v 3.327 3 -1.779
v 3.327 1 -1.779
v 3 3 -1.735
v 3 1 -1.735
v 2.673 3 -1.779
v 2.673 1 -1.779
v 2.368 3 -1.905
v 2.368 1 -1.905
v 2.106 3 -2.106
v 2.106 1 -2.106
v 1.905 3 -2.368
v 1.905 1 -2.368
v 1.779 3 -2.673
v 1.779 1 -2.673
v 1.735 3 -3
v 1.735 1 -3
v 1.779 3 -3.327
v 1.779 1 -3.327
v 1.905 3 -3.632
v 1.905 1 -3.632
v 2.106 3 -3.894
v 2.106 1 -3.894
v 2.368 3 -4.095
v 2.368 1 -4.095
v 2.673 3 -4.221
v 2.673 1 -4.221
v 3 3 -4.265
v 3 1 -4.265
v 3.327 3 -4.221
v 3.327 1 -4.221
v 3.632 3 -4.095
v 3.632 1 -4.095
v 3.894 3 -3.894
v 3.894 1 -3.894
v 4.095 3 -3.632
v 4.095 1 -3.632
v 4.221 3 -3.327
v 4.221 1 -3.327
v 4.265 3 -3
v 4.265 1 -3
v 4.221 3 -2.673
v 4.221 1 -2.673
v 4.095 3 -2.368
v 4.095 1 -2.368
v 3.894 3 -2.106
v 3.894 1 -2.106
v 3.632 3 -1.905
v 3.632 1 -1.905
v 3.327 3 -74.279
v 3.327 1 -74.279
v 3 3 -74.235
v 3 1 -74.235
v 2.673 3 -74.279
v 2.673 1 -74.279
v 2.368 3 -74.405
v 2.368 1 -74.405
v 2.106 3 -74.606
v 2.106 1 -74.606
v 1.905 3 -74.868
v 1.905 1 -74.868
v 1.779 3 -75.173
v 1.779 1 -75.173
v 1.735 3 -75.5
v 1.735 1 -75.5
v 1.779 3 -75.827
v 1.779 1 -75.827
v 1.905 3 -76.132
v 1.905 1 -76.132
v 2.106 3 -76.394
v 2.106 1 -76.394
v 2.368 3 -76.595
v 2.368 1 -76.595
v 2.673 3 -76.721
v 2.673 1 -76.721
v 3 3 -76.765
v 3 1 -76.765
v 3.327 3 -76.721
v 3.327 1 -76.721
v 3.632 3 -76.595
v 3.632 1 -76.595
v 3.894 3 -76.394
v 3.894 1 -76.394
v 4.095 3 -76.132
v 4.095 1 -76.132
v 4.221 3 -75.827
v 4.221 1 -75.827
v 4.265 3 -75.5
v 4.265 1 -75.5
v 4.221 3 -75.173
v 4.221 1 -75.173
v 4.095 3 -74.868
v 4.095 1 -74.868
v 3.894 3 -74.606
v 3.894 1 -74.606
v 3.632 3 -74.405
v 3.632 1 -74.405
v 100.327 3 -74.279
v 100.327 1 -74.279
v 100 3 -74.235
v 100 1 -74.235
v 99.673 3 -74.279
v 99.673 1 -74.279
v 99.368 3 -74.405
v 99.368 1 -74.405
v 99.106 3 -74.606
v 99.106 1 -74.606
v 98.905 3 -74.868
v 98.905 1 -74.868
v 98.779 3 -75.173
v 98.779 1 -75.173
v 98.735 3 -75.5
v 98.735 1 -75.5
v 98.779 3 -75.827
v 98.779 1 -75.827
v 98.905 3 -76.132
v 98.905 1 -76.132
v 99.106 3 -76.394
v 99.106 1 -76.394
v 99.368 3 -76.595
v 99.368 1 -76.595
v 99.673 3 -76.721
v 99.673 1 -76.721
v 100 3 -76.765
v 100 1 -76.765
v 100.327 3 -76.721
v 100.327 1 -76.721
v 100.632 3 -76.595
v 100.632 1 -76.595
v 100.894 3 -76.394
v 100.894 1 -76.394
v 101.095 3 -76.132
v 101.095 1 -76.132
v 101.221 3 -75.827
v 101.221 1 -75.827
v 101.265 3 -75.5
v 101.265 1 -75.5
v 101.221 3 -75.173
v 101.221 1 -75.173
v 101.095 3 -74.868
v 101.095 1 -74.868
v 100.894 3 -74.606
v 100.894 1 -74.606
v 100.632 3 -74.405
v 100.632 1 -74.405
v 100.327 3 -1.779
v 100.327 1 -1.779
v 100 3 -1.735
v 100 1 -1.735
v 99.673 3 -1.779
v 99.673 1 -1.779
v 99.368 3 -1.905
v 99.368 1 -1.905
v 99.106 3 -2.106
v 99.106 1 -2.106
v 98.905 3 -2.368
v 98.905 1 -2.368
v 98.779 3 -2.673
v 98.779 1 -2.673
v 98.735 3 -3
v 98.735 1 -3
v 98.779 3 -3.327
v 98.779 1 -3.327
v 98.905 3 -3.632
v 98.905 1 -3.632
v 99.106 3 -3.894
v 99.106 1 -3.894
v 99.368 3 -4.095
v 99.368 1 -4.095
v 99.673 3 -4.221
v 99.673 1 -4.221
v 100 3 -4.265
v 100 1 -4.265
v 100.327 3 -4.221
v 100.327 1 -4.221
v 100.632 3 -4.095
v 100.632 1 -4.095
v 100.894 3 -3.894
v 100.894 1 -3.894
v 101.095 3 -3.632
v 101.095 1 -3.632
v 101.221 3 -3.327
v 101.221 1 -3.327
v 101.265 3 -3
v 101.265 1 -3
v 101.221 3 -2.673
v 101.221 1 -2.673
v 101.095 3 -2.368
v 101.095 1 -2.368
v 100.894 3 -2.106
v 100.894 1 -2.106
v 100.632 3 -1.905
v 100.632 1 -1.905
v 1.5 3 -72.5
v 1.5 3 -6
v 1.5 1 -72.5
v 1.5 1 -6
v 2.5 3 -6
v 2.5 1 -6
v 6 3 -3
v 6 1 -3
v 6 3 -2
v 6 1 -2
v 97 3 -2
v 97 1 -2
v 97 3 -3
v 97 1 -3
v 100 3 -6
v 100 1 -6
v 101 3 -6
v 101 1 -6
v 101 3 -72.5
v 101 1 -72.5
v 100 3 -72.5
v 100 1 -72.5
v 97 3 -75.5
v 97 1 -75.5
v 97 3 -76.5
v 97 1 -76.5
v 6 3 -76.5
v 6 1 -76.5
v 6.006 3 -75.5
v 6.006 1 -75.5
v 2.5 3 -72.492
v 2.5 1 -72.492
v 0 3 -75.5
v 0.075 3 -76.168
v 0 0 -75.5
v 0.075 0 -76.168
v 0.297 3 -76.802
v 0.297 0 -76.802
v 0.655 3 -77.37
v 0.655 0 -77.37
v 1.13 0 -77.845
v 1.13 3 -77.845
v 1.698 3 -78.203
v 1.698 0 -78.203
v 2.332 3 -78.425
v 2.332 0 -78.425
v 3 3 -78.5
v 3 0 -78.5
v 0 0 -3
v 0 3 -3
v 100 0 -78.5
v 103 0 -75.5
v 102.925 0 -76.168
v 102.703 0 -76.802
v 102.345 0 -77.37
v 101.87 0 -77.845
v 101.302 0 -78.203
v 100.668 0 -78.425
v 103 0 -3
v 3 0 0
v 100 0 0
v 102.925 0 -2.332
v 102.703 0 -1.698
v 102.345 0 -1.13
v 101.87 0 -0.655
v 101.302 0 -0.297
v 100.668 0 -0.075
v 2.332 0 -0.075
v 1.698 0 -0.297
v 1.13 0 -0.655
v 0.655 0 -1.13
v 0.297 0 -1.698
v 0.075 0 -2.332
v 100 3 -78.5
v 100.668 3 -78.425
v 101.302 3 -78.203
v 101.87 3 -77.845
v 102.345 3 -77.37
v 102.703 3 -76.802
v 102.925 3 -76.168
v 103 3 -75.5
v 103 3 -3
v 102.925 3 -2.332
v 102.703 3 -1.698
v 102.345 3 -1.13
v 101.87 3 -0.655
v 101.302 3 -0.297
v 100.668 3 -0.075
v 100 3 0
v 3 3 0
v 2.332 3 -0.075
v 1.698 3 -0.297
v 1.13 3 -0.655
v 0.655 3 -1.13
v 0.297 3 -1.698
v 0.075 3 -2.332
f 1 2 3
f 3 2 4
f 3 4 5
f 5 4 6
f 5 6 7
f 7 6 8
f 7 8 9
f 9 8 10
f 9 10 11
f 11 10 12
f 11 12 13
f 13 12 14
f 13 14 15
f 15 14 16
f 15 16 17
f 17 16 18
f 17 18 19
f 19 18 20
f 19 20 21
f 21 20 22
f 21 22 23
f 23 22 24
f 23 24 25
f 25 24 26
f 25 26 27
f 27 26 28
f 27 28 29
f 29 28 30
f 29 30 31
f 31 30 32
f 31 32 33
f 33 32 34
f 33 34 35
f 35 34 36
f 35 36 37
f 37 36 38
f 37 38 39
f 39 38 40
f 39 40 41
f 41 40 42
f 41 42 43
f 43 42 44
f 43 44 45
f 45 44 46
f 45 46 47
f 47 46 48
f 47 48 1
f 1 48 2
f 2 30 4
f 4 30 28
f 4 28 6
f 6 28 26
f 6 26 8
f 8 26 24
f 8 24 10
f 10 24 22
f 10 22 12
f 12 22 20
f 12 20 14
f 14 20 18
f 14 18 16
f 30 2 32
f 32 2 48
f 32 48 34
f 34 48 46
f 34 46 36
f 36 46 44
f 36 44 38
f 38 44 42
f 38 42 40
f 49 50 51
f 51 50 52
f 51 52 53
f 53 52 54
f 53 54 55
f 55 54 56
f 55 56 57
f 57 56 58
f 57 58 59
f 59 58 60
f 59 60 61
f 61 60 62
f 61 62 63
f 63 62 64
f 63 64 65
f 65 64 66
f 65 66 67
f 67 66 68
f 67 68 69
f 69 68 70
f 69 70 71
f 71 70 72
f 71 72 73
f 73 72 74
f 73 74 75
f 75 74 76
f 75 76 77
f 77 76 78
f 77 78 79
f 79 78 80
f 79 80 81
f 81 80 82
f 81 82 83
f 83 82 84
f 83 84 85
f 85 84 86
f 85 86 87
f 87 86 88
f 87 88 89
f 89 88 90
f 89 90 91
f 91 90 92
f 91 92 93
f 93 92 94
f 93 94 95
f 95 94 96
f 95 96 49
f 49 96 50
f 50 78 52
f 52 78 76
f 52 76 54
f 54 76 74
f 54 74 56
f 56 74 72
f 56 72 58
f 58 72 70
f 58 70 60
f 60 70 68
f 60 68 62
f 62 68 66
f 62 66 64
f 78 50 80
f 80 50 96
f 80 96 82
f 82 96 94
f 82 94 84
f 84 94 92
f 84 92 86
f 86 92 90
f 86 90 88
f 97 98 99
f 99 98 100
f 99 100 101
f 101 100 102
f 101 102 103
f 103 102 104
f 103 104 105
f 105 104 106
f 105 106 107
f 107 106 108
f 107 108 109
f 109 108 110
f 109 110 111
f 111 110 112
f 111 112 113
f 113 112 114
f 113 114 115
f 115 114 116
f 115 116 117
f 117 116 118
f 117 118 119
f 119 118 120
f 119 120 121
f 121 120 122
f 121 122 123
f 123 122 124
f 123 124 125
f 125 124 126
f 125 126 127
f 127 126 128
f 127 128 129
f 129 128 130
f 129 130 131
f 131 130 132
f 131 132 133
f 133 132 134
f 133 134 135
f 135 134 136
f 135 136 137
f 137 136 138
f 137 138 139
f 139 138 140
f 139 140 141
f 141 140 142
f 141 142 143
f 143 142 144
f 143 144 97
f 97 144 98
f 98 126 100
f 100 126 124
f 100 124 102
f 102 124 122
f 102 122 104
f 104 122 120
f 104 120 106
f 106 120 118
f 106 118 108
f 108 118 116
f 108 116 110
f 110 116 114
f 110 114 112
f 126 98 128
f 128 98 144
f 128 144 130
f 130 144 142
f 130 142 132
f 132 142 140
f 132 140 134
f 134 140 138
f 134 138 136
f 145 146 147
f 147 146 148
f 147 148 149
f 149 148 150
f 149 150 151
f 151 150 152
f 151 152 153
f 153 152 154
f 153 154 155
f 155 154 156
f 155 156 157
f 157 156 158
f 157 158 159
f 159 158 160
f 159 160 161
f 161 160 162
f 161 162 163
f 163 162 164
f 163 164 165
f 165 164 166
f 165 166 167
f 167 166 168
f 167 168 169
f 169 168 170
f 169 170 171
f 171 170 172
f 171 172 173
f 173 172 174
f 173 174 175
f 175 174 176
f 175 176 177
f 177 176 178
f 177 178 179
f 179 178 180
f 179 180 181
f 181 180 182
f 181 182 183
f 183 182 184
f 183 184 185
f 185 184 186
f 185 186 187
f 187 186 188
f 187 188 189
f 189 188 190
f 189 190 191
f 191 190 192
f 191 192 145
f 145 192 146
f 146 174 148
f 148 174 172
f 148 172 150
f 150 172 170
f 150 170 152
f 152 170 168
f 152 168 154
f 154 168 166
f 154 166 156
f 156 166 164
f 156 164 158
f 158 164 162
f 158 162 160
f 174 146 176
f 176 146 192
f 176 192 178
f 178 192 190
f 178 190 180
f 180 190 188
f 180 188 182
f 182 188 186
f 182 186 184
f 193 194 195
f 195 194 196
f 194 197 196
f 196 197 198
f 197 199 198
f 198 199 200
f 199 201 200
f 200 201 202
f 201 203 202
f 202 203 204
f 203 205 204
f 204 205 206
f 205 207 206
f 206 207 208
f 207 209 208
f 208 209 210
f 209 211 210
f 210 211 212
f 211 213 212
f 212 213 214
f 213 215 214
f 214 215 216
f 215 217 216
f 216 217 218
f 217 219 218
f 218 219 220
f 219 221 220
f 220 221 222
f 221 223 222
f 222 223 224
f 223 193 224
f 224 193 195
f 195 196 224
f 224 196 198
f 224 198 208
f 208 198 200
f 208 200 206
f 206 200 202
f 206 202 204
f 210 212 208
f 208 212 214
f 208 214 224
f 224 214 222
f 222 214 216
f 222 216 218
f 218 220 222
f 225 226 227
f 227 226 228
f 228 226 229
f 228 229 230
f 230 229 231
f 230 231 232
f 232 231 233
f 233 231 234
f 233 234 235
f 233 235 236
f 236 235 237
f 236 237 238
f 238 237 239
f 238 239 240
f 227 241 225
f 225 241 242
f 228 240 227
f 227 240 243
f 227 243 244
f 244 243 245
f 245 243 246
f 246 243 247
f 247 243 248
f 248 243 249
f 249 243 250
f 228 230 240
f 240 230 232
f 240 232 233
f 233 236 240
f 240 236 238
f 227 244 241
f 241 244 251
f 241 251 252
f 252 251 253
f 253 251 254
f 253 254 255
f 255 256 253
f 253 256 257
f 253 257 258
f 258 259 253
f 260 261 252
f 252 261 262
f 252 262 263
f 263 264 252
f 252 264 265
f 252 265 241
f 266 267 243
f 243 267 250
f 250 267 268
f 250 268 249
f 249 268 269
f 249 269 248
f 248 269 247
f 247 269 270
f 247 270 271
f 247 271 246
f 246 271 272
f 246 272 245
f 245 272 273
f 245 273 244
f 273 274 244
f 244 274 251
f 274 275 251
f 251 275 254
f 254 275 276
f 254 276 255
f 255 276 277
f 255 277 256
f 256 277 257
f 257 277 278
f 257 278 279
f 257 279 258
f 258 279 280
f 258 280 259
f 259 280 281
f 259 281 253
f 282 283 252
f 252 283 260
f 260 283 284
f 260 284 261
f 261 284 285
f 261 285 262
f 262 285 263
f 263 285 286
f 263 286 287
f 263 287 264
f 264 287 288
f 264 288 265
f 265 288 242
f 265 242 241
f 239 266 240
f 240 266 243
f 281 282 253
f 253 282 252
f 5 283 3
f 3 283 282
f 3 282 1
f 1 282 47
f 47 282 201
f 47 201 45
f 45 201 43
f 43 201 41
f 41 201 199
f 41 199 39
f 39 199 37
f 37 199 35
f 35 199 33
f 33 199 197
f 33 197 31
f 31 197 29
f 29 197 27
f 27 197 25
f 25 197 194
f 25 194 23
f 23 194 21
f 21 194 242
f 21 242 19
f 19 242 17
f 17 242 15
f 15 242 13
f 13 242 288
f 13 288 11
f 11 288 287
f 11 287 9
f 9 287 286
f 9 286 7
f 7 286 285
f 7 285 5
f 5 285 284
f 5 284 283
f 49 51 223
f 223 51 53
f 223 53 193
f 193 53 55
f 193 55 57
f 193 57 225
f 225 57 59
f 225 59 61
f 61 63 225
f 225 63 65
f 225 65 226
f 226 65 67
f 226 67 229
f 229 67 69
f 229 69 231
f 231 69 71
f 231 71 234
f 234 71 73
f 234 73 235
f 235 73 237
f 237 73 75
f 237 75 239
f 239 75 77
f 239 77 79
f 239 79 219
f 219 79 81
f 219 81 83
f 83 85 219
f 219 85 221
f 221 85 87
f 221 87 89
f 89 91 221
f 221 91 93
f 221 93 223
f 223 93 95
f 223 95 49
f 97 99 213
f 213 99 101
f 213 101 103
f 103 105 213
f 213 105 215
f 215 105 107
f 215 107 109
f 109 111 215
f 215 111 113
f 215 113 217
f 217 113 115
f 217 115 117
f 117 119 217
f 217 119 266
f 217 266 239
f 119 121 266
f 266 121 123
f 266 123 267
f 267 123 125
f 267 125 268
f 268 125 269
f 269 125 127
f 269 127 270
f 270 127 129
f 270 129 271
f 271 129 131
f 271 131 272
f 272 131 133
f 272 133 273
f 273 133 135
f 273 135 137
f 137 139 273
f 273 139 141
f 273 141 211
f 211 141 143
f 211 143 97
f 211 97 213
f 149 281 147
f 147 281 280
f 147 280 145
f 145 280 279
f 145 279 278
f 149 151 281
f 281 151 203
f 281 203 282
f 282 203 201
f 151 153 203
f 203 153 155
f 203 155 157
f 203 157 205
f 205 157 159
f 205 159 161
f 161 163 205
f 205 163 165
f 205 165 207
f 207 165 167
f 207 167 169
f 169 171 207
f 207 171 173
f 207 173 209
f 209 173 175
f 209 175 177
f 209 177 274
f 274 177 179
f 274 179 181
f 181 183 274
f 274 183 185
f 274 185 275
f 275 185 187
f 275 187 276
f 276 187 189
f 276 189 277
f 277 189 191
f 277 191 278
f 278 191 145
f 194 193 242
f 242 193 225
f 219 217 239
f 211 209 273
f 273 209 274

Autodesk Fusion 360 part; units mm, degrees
sketch "Sketch1" plane through (0, 0, 0) normal (0, 1, 0) x (1, 0, 0)
  line L0 (0, 0) -> (103, 0)
  line L1 (103, 0) -> (103, 78.5)
  line L2 (103, 78.5) -> (0, 78.5)
  line L3 (0, 78.5) -> (0, 0)
  dimension "d1" = 103
  dimension "d2" = 78.5
extrude "Extrude1" add sketch "Sketch1" along normal blind 3
fillet "Fillet1" radius 3 4 edges at (0, 1.5, 0) (103, 1.5, 0) (103, 1.5, -78.5) (0, 1.5, -78.5)
sketch "Sketch6" plane through (0, 3, 0) normal (0, 1, 0) x (-1, 0, 0)
  arc A0 (-3, -78.5) -> (0, -75.5) centre (-3, -75.5) ccw
  line L0 (0, -75.5) -> (0, -3)
  arc A1 (0, -3) -> (-3, 0) centre (-3, -3) ccw
  line L1 (-3, 0) -> (-100, 0)
  arc A2 (-100, 0) -> (-103, -3) centre (-100, -3) ccw
  line L2 (-103, -3) -> (-103, -75.5)
  arc A3 (-103, -75.5) -> (-100, -78.5) centre (-100, -75.5) ccw
  line L3 (-100, -78.5) -> (-3, -78.5)
  line L4 (-1.5, -72.5) -> (-1.5, -6)
  line L5 (-1.5, -6) -> (-2.5, -6)
  line L6 (-2.5, -6) -> (-6, -3)
  line L7 (-6, -3) -> (-6, -2)
  line L8 (-6, -2) -> (-97, -2)
  line L9 (-97, -2) -> (-97, -3)
  line L10 (-97, -3) -> (-100, -6)
  line L11 (-100, -6) -> (-101, -6)
  line L12 (-101, -6) -> (-101, -72.5)
  line L13 (-101, -72.5) -> (-100, -72.5)
  line L14 (-100, -72.5) -> (-97, -75.5)
  line L15 (-97, -75.5) -> (-97, -76.5)
  line L16 (-97, -76.5) -> (-6, -76.5)
  line L17 (-6, -76.5) -> (-6.0056, -75.5)
  line L18 (-6.0056, -75.5) -> (-2.5, -72.4923)
  line L19 (-2.5, -72.4923) -> (-1.5, -72.5)
  dimension "d181" = 6
  dimension "d182" = 6
  dimension "d184" = 1
  dimension "d185" = 6
  dimension "d186" = 66.5
  dimension "d187" = 1
  dimension "d188" = 1
  dimension "d189" = 1
  dimension "d191" = 6
  dimension "d192" = 6
  dimension "d193" = 1
  dimension "d194" = 1
  dimension "d195" = 6
  dimension "d196" = 1
  dimension "d197" = 6
  dimension "d198" = 1
  dimension "d199" = 6
  dimension "d200" = 2
  dimension "d201" = 2
  dimension "d202" = 2
  dimension "d203" = 2
  dimension "d204" = 2
  dimension "d205" = 2
  dimension "d206" = 1.5
  dimension "d207" = 2
extrude "Extrude6" cut sketch "Sketch6" against normal blind 2 contours L4 L5 L6 L7 L8 L9 L10 L11 L12 L13 L14 L15 L16 L17 L18 L19
sketch "Sketch7" plane through (0, 3, 0) normal (0, 1, 0) x (-1, 0, 0)
  line L0 (-1.5, -6) -> (-1.5, -72.5)
  line L1 (-1.5, -72.5) -> (-2.5, -72.4923)
  line L2 (-2.5, -72.4923) -> (-6.0056, -75.5)
  line L3 (-6.0056, -75.5) -> (-6, -76.5)
  line L4 (-6, -76.5) -> (-97, -76.5)
  line L5 (-97, -76.5) -> (-97, -75.5)
  line L6 (-97, -75.5) -> (-100, -72.5)
  line L7 (-100, -72.5) -> (-101, -72.5)
  line L8 (-101, -72.5) -> (-101, -6)
  line L9 (-101, -6) -> (-100, -6)
  line L10 (-100, -6) -> (-97, -3)
  line L11 (-97, -3) -> (-97, -2)
  line L12 (-97, -2) -> (-6, -2)
  line L13 (-6, -2) -> (-6, -3)
  line L14 (-6, -3) -> (-2.5, -6)
  line L15 (-2.5, -6) -> (-1.5, -6)
  arc A0 (-3, -78.5) -> (0, -75.5) centre (-3, -75.5) ccw
  line L16 (0, -75.5) -> (0, -3)
  arc A1 (0, -3) -> (-3, 0) centre (-3, -3) ccw
  line L17 (-3, 0) -> (-100, 0)
  arc A2 (-100, 0) -> (-103, -3) centre (-100, -3) ccw
  line L18 (-103, -3) -> (-103, -75.5)
  arc A3 (-103, -75.5) -> (-100, -78.5) centre (-100, -75.5) ccw
  line L19 (-100, -78.5) -> (-3, -78.5)
  point P0 (-3, -75.5)
  point P1 (-100, -75.5)
  point P2 (-3, -3)
  point P3 (-100, -3)
hole "Hole1" at (3, 3, -75.5) at (100, 3, -75.5) at (3, 3, -3) at (100, 3, -3) direction (0, -1, 0) diameter 2.529 depth 2 tip angle 180
